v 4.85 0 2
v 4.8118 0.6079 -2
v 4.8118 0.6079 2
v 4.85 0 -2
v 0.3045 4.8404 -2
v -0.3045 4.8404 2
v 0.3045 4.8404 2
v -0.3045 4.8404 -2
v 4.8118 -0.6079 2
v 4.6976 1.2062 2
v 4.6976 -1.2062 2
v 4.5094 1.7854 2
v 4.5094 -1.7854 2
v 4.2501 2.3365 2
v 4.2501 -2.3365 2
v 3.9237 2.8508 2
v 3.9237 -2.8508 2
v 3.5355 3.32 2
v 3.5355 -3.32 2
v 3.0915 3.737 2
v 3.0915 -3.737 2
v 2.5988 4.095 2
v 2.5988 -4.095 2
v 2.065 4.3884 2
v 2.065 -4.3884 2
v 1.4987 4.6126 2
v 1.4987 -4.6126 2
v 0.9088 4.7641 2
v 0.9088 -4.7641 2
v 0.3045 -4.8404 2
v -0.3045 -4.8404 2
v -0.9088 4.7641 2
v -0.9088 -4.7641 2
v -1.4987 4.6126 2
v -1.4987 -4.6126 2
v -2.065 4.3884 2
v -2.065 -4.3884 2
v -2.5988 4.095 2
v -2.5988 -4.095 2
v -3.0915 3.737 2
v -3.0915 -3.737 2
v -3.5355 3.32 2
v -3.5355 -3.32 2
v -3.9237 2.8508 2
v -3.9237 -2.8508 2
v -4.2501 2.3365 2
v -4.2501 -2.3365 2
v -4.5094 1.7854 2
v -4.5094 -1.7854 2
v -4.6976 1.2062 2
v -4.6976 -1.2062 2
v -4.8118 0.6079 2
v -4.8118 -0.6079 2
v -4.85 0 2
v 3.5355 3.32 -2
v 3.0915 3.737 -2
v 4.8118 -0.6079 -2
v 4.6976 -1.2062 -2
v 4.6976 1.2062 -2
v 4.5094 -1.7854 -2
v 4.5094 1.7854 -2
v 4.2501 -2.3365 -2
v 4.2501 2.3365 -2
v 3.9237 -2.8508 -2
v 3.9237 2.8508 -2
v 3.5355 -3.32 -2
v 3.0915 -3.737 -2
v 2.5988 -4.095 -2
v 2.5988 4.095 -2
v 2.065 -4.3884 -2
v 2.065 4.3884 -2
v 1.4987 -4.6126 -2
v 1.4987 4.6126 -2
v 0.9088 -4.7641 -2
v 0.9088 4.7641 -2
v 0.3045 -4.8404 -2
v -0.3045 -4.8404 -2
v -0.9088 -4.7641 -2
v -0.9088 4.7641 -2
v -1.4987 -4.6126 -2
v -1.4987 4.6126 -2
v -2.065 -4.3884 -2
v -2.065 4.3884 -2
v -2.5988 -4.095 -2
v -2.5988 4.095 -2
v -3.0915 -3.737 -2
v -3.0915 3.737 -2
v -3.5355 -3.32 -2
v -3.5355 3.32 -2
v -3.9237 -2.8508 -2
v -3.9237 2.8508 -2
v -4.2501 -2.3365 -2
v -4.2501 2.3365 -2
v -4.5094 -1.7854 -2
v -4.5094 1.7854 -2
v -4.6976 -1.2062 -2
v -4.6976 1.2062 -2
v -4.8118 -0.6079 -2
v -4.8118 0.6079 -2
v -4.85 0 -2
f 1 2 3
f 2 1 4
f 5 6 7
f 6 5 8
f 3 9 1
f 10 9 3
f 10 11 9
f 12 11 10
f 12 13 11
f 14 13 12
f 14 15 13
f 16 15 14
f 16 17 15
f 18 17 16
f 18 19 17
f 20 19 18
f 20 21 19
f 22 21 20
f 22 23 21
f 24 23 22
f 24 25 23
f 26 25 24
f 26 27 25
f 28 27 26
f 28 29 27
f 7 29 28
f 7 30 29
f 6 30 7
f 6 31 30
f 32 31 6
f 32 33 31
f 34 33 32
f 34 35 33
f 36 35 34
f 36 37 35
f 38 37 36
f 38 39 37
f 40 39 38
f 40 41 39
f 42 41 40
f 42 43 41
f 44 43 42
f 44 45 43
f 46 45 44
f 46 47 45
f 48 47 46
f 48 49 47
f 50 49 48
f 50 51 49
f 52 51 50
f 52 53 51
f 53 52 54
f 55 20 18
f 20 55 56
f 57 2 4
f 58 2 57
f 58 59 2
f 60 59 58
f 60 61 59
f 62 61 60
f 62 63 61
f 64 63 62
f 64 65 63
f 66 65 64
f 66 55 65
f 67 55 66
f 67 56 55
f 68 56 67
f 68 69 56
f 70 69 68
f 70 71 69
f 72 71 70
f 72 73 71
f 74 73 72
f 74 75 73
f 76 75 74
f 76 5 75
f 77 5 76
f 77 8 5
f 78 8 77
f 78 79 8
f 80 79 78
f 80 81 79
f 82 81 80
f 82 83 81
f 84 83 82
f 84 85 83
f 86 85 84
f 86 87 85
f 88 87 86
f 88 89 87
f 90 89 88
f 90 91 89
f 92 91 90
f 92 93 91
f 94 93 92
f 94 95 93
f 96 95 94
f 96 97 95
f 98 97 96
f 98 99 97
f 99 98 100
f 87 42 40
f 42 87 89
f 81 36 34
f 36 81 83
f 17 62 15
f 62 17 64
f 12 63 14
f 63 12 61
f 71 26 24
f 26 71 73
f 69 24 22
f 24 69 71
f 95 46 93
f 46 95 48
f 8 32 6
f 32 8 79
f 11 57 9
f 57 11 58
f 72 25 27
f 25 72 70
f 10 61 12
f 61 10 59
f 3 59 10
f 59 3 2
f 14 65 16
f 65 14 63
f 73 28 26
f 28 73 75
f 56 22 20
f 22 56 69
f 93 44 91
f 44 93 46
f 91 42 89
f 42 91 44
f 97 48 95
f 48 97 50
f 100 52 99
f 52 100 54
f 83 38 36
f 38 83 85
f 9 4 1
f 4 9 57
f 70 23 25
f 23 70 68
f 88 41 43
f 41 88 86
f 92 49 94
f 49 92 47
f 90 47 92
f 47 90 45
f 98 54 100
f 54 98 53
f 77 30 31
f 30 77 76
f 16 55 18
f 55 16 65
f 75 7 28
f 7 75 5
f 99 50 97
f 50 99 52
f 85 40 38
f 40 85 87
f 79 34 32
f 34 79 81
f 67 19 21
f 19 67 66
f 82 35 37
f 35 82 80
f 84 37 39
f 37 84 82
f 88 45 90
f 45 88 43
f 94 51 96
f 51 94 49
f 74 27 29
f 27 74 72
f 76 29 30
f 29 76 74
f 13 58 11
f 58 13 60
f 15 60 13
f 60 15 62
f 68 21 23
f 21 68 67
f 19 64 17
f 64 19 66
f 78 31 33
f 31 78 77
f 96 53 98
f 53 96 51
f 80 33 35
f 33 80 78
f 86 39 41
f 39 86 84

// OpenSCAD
$fn = 50;


difference() {
	union() {
		translate(v = [0, 0, -2.0000000000]) {
			cylinder(h = 4, r = 4.8500000000);
		}
	}
	union() {
		translate(v = [0, 0, -100.0000000000]) {
			cylinder(h = 200, r = 0);
		}
	}
}
